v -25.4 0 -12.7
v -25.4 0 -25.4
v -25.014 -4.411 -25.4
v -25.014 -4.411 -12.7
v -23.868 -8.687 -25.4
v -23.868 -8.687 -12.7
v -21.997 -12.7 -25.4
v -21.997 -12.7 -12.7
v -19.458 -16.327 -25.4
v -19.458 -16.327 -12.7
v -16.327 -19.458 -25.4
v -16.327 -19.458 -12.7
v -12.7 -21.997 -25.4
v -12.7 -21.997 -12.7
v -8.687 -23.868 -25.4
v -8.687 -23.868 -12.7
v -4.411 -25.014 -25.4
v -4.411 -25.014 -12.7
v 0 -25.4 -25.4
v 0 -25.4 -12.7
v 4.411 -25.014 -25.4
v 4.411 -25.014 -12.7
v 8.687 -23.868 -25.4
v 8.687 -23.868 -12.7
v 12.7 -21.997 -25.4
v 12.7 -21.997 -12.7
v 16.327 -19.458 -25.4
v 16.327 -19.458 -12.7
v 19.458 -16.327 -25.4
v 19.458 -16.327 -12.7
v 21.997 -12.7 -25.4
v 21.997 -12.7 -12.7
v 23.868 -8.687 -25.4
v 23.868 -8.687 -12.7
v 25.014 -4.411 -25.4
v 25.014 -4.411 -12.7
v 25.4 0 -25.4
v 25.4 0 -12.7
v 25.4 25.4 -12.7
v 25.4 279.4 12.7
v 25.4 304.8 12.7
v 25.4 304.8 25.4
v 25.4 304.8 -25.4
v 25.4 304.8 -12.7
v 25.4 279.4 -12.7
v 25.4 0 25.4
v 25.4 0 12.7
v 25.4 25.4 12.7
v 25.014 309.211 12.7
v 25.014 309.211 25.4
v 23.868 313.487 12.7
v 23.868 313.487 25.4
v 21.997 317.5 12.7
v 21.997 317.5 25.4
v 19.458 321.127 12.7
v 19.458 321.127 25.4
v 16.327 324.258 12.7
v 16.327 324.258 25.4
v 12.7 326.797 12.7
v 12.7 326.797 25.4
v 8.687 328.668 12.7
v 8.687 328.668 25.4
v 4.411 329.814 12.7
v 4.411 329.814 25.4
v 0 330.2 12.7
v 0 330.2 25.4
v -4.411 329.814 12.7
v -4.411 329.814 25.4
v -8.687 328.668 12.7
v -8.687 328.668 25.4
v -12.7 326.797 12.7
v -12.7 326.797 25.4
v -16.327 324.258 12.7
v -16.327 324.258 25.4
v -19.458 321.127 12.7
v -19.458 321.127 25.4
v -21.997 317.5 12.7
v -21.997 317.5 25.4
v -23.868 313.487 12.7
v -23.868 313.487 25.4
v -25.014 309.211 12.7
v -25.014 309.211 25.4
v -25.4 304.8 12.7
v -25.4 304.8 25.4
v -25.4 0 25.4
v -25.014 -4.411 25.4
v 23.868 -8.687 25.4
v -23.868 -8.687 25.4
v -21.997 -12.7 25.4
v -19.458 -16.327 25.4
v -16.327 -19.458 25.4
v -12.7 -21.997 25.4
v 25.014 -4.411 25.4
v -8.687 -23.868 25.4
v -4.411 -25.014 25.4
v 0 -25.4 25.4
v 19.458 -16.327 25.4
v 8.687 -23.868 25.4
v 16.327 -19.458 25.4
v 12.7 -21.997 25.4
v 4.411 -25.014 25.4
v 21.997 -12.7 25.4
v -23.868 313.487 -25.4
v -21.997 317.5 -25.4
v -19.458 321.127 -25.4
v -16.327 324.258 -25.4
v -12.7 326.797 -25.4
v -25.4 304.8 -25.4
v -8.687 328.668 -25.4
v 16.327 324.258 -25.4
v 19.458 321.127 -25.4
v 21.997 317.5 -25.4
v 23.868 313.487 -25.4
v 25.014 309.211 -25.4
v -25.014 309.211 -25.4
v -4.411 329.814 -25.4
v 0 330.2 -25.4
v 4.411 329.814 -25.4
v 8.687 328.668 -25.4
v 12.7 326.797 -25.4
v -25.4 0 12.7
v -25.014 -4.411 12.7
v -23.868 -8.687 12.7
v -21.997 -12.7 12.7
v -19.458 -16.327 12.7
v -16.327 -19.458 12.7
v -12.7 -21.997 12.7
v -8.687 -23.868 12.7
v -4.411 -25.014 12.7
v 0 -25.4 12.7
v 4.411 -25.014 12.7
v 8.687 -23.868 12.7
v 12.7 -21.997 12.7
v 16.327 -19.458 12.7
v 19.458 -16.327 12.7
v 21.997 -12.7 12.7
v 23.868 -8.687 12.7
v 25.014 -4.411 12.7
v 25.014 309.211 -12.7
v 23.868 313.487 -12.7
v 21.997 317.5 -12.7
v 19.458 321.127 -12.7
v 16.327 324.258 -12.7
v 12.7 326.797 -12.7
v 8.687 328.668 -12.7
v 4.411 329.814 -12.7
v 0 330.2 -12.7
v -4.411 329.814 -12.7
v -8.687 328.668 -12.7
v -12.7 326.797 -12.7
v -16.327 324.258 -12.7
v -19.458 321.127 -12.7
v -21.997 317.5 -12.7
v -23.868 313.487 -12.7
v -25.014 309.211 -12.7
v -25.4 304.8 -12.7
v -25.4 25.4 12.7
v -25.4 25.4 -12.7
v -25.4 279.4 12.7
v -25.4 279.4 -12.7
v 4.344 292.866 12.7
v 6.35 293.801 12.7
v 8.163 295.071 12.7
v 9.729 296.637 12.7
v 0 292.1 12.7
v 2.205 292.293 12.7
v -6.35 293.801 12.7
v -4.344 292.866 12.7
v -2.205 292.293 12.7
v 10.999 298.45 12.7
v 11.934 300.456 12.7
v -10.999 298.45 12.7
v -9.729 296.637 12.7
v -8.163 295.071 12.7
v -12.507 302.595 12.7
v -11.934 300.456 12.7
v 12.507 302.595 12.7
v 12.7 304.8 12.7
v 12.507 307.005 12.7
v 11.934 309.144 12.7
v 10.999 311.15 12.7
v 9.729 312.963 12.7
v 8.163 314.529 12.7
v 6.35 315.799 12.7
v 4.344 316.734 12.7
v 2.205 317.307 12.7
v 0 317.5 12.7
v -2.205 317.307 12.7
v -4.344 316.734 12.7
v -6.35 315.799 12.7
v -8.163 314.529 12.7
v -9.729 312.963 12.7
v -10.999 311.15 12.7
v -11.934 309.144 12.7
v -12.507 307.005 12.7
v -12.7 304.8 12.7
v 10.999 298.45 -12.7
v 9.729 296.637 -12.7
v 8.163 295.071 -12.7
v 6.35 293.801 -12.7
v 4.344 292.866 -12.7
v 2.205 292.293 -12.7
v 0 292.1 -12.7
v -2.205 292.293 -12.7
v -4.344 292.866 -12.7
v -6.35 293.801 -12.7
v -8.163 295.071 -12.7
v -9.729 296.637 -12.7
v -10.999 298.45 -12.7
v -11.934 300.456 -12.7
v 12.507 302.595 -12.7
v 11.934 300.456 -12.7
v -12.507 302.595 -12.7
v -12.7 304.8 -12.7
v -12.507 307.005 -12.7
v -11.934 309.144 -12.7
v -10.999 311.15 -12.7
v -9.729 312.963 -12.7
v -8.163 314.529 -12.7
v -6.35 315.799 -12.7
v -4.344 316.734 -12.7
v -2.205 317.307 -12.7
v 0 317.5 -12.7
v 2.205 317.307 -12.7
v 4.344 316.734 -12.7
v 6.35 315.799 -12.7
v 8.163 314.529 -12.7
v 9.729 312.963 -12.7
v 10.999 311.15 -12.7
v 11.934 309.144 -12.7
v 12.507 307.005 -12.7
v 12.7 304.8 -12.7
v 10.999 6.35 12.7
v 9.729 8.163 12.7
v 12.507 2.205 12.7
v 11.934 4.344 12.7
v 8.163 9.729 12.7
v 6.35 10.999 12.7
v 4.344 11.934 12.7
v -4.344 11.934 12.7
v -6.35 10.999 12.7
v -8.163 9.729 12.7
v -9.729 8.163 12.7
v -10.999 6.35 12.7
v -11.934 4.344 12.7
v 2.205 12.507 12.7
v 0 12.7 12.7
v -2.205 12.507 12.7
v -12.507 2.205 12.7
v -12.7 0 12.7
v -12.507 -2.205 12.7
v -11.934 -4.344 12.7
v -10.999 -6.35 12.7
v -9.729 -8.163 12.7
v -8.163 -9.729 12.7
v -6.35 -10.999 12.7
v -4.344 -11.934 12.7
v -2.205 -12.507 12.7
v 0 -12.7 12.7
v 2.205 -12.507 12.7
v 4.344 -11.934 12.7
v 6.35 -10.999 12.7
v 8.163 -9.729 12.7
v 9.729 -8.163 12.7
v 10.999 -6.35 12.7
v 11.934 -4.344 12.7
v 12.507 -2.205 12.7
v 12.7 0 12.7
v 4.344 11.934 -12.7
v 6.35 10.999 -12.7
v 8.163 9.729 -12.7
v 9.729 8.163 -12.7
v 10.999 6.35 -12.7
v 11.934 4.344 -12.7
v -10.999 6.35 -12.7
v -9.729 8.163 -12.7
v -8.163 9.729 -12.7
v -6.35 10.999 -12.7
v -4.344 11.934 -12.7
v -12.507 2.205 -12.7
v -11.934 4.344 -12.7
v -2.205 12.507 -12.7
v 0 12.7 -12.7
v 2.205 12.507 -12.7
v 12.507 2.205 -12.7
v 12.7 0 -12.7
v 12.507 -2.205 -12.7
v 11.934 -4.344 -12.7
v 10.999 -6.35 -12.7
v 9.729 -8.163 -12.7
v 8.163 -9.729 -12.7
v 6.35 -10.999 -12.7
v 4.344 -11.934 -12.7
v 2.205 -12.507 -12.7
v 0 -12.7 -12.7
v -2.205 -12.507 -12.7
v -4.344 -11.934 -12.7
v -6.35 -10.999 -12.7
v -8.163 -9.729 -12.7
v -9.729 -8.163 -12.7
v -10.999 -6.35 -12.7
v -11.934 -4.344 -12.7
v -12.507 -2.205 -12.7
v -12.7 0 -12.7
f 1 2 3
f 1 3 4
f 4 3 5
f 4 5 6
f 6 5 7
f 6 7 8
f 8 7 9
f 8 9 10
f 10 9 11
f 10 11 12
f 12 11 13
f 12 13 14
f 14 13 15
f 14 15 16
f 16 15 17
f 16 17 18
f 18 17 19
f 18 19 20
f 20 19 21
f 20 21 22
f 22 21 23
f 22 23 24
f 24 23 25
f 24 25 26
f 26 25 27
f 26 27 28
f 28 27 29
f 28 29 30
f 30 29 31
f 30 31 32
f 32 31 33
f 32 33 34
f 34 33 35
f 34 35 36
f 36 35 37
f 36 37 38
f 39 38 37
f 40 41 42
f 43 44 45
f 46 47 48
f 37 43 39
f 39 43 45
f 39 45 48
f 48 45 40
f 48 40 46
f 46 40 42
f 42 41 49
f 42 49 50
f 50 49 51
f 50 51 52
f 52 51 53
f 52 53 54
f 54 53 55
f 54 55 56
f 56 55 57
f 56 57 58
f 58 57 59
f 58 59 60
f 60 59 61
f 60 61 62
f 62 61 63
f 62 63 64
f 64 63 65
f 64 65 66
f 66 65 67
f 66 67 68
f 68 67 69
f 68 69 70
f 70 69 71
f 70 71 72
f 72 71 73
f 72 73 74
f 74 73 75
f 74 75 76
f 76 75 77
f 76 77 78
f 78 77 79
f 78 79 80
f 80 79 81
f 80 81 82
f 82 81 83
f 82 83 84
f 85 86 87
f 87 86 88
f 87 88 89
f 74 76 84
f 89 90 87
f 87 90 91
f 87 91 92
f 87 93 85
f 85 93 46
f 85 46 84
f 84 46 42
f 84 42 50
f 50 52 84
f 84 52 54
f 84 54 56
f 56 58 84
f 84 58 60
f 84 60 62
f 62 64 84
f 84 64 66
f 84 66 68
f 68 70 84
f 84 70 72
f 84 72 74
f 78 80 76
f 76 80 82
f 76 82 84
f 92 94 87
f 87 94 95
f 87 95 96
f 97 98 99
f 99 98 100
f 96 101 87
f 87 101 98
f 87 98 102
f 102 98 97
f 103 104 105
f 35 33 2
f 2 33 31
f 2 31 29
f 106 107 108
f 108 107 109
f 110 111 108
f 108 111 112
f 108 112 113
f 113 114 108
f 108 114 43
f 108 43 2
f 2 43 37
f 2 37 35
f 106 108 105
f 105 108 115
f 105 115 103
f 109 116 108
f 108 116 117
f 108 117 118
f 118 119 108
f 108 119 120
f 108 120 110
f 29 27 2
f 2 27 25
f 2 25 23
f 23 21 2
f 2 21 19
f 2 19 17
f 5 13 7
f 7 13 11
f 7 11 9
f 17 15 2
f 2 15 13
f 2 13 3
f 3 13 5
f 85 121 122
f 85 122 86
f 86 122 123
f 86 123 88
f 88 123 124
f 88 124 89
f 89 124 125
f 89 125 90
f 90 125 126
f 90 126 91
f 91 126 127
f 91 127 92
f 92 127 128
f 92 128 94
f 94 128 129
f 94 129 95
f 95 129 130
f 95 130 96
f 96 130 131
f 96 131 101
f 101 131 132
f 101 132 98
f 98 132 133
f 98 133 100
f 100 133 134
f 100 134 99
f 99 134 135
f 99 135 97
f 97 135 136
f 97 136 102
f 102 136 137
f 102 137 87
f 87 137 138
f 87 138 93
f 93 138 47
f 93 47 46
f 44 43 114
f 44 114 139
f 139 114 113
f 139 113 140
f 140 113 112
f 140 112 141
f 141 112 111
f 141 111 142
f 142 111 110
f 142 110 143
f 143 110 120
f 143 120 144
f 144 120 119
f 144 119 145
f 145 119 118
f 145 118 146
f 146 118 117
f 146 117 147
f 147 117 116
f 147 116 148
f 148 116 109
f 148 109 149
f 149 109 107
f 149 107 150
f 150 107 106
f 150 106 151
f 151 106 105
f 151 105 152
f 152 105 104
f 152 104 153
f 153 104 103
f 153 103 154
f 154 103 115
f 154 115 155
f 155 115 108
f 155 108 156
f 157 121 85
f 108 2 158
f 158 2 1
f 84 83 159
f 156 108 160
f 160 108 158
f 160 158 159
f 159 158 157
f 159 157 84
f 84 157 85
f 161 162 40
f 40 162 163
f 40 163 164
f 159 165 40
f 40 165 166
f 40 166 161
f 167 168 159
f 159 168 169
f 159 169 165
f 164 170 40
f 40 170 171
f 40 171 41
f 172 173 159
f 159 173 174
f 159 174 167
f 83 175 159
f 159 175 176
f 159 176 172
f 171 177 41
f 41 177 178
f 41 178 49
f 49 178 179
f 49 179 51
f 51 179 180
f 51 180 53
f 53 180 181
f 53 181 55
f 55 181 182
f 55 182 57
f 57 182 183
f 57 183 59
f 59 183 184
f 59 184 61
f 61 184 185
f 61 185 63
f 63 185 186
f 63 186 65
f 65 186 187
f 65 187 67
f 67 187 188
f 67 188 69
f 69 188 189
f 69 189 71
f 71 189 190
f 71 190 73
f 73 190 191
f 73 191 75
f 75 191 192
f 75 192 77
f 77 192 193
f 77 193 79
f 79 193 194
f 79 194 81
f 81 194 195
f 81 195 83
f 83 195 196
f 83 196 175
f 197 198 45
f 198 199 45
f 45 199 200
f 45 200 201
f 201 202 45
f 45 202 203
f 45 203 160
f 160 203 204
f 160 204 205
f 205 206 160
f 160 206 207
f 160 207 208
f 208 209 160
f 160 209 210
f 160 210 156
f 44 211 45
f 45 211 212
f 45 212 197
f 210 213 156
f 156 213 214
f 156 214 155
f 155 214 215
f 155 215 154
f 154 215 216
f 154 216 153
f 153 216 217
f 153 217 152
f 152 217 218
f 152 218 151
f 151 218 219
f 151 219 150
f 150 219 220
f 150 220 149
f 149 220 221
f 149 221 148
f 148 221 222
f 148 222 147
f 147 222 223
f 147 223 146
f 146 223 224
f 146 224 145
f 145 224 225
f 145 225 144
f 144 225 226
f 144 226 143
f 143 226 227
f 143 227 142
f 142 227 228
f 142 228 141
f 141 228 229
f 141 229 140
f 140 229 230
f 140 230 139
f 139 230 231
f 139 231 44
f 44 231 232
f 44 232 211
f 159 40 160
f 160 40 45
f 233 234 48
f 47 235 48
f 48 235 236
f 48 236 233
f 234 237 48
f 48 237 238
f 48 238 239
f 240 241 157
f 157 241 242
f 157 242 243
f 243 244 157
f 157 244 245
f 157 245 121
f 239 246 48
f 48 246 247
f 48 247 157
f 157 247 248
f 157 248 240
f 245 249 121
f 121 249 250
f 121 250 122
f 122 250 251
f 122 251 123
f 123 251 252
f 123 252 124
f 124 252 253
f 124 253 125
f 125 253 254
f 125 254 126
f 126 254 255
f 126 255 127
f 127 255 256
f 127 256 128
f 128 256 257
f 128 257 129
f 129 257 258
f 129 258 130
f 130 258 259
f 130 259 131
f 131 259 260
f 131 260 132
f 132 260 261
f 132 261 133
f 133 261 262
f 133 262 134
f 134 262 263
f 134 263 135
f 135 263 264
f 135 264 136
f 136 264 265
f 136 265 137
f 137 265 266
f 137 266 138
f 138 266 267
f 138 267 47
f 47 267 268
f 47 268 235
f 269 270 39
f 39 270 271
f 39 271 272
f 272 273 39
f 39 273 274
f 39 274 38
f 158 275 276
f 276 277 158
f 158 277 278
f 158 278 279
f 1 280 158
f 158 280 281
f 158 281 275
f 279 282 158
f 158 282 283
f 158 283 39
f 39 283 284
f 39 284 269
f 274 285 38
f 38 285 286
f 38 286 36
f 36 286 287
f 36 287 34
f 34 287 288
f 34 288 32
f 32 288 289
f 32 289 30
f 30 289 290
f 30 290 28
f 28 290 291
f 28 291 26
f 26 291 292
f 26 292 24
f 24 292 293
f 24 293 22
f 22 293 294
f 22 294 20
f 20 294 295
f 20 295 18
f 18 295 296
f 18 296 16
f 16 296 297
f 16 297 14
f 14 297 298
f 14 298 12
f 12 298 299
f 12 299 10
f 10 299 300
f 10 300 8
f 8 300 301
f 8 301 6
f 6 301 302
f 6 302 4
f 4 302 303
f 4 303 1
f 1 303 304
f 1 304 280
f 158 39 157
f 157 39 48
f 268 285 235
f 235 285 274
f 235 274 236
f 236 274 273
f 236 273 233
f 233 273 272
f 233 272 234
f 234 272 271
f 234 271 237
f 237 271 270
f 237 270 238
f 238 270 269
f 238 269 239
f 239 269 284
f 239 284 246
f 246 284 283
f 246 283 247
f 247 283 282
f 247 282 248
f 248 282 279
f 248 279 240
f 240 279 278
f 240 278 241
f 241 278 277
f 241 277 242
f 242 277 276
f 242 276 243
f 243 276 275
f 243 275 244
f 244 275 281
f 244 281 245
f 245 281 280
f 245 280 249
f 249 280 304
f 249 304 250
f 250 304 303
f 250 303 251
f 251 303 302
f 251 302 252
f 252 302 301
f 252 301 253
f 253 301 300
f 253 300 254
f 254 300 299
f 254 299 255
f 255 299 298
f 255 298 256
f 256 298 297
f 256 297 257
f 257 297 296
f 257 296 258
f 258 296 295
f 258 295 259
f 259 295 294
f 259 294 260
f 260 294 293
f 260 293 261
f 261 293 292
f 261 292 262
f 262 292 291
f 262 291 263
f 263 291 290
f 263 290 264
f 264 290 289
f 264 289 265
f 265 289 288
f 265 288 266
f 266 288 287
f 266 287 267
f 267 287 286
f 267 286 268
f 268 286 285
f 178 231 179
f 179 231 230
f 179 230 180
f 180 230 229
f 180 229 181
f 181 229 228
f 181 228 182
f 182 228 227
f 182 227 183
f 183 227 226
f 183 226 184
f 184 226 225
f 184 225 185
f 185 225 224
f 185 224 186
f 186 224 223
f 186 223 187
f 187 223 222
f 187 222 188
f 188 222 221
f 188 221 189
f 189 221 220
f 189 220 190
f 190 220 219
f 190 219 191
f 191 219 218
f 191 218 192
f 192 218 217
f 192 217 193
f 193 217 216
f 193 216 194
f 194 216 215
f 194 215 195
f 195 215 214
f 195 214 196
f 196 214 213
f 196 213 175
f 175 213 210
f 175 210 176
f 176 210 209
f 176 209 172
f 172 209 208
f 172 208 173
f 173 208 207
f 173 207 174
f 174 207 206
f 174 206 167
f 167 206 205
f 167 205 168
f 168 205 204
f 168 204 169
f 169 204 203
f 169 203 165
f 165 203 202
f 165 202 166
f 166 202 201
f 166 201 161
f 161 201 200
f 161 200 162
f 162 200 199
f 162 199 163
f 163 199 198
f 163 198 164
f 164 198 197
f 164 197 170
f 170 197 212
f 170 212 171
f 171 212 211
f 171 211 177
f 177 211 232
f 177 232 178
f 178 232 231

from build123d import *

# Parameters (mm, degrees)
SKETCH1_R                       = 12.7
BOSS_EXTRUDE1_DEPTH             = 25.4
CUT_EXTRUDE1_DEPTH              = 333.148099498
CUT_EXTRUDE1_DEPTH_BACK         = 333.148099498
SKETCH2_W                       = 25.4
SKETCH2_H                       = 50.8
BOSS_EXTRUDE2_REACH             = 334.148
SKETCH1_2_R                     = 12.7
BOSS_EXTRUDE2_DIRECTION_2_REACH = 334.148


with BuildPart() as part:
    # Sketch1 → Boss-Extrude1 (new, symmetric)
    with BuildSketch(Plane.XY):
        with BuildLine():
            Line((-25.4, 0), (-25.4, 304.8))
            ThreePointArc((-25.4, 304.8), (0, 330.2), (25.4, 304.8))
            Line((25.4, 304.8), (25.4, 0))
            ThreePointArc((25.4, 0), (0, -25.4), (-25.4, 0))
        make_face()
        Circle(SKETCH1_R, mode=Mode.SUBTRACT)
        with Locations((0, 304.8)):
            Circle(SKETCH1_R, mode=Mode.SUBTRACT)
    extrude(amount=BOSS_EXTRUDE1_DEPTH, both=True)

    # Sketch2 → Cut-Extrude1 (cut, two sides: drawn at the far end of the back side and taken through both)
    with BuildSketch(Plane(origin=(0, 0, 0), x_dir=(0, 0, -1), z_dir=(1, 0, 0)).offset(-CUT_EXTRUDE1_DEPTH_BACK)):
        with Locations((0, 304.8)):
            Rectangle(SKETCH2_W, SKETCH2_H)
        Rectangle(SKETCH2_W, SKETCH2_H)
    extrude(amount=CUT_EXTRUDE1_DEPTH + CUT_EXTRUDE1_DEPTH_BACK, mode=Mode.SUBTRACT)

    # Boss-Extrude2: up to this face of the body (flat: up to its plane)
    boss_extrude2_end = Plane(part.part.faces().sort_by_distance((0, 152.4, -25.4))[0])
    # Sketch1<2> → Boss-Extrude2 (add, up to the picked face)
    with BuildSketch(Plane.XY, mode=Mode.PRIVATE) as boss_extrude2_sk1:
        Circle(SKETCH1_2_R)
    boss_extrude2_tool1 = split(extrude(boss_extrude2_sk1.sketch, amount=-BOSS_EXTRUDE2_REACH, mode=Mode.PRIVATE), bisect_by=boss_extrude2_end, keep=Keep.BOTH, mode=Mode.PRIVATE)
    # Sketch1<2> → Boss-Extrude2 (add, up to the picked face)
    with BuildSketch(Plane.XY, mode=Mode.PRIVATE) as boss_extrude2_sk2:
        with Locations((0, 304.8)):
            Circle(SKETCH1_2_R)
    boss_extrude2_tool2 = split(extrude(boss_extrude2_sk2.sketch, amount=-BOSS_EXTRUDE2_REACH, mode=Mode.PRIVATE), bisect_by=boss_extrude2_end, keep=Keep.BOTH, mode=Mode.PRIVATE)
    add(boss_extrude2_tool1.solids().sort_by(Axis((0, 0, 0), (0, 0, -1)))[0])
    add(boss_extrude2_tool2.solids().sort_by(Axis((0, 304.8, 0), (0, 0, -1)))[0])

    # Boss-Extrude2 direction 2: up to this face of the body (flat: up to its plane)
    boss_extrude2_direction_2_end = Plane(part.part.faces().sort_by_distance((0, 152.4, 25.4))[0])
    # Sketch1<2> → Boss-Extrude2 direction 2 (add, up to the picked face)
    with BuildSketch(Plane.XY, mode=Mode.PRIVATE) as boss_extrude2_direction_2_sk1:
        Circle(SKETCH1_2_R)
    boss_extrude2_direction_2_tool1 = split(extrude(boss_extrude2_direction_2_sk1.sketch, amount=BOSS_EXTRUDE2_DIRECTION_2_REACH, mode=Mode.PRIVATE), bisect_by=boss_extrude2_direction_2_end, keep=Keep.BOTH, mode=Mode.PRIVATE)
    # Sketch1<2> → Boss-Extrude2 direction 2 (add, up to the picked face)
    with BuildSketch(Plane.XY, mode=Mode.PRIVATE) as boss_extrude2_direction_2_sk2:
        with Locations((0, 304.8)):
            Circle(SKETCH1_2_R)
    boss_extrude2_direction_2_tool2 = split(extrude(boss_extrude2_direction_2_sk2.sketch, amount=BOSS_EXTRUDE2_DIRECTION_2_REACH, mode=Mode.PRIVATE), bisect_by=boss_extrude2_direction_2_end, keep=Keep.BOTH, mode=Mode.PRIVATE)
    add(boss_extrude2_direction_2_tool1.solids().sort_by(Axis((0, 0, 0), (0, 0, 1)))[0])
    add(boss_extrude2_direction_2_tool2.solids().sort_by(Axis((0, 304.8, 0), (0, 0, 1)))[0])


solid = part.part
